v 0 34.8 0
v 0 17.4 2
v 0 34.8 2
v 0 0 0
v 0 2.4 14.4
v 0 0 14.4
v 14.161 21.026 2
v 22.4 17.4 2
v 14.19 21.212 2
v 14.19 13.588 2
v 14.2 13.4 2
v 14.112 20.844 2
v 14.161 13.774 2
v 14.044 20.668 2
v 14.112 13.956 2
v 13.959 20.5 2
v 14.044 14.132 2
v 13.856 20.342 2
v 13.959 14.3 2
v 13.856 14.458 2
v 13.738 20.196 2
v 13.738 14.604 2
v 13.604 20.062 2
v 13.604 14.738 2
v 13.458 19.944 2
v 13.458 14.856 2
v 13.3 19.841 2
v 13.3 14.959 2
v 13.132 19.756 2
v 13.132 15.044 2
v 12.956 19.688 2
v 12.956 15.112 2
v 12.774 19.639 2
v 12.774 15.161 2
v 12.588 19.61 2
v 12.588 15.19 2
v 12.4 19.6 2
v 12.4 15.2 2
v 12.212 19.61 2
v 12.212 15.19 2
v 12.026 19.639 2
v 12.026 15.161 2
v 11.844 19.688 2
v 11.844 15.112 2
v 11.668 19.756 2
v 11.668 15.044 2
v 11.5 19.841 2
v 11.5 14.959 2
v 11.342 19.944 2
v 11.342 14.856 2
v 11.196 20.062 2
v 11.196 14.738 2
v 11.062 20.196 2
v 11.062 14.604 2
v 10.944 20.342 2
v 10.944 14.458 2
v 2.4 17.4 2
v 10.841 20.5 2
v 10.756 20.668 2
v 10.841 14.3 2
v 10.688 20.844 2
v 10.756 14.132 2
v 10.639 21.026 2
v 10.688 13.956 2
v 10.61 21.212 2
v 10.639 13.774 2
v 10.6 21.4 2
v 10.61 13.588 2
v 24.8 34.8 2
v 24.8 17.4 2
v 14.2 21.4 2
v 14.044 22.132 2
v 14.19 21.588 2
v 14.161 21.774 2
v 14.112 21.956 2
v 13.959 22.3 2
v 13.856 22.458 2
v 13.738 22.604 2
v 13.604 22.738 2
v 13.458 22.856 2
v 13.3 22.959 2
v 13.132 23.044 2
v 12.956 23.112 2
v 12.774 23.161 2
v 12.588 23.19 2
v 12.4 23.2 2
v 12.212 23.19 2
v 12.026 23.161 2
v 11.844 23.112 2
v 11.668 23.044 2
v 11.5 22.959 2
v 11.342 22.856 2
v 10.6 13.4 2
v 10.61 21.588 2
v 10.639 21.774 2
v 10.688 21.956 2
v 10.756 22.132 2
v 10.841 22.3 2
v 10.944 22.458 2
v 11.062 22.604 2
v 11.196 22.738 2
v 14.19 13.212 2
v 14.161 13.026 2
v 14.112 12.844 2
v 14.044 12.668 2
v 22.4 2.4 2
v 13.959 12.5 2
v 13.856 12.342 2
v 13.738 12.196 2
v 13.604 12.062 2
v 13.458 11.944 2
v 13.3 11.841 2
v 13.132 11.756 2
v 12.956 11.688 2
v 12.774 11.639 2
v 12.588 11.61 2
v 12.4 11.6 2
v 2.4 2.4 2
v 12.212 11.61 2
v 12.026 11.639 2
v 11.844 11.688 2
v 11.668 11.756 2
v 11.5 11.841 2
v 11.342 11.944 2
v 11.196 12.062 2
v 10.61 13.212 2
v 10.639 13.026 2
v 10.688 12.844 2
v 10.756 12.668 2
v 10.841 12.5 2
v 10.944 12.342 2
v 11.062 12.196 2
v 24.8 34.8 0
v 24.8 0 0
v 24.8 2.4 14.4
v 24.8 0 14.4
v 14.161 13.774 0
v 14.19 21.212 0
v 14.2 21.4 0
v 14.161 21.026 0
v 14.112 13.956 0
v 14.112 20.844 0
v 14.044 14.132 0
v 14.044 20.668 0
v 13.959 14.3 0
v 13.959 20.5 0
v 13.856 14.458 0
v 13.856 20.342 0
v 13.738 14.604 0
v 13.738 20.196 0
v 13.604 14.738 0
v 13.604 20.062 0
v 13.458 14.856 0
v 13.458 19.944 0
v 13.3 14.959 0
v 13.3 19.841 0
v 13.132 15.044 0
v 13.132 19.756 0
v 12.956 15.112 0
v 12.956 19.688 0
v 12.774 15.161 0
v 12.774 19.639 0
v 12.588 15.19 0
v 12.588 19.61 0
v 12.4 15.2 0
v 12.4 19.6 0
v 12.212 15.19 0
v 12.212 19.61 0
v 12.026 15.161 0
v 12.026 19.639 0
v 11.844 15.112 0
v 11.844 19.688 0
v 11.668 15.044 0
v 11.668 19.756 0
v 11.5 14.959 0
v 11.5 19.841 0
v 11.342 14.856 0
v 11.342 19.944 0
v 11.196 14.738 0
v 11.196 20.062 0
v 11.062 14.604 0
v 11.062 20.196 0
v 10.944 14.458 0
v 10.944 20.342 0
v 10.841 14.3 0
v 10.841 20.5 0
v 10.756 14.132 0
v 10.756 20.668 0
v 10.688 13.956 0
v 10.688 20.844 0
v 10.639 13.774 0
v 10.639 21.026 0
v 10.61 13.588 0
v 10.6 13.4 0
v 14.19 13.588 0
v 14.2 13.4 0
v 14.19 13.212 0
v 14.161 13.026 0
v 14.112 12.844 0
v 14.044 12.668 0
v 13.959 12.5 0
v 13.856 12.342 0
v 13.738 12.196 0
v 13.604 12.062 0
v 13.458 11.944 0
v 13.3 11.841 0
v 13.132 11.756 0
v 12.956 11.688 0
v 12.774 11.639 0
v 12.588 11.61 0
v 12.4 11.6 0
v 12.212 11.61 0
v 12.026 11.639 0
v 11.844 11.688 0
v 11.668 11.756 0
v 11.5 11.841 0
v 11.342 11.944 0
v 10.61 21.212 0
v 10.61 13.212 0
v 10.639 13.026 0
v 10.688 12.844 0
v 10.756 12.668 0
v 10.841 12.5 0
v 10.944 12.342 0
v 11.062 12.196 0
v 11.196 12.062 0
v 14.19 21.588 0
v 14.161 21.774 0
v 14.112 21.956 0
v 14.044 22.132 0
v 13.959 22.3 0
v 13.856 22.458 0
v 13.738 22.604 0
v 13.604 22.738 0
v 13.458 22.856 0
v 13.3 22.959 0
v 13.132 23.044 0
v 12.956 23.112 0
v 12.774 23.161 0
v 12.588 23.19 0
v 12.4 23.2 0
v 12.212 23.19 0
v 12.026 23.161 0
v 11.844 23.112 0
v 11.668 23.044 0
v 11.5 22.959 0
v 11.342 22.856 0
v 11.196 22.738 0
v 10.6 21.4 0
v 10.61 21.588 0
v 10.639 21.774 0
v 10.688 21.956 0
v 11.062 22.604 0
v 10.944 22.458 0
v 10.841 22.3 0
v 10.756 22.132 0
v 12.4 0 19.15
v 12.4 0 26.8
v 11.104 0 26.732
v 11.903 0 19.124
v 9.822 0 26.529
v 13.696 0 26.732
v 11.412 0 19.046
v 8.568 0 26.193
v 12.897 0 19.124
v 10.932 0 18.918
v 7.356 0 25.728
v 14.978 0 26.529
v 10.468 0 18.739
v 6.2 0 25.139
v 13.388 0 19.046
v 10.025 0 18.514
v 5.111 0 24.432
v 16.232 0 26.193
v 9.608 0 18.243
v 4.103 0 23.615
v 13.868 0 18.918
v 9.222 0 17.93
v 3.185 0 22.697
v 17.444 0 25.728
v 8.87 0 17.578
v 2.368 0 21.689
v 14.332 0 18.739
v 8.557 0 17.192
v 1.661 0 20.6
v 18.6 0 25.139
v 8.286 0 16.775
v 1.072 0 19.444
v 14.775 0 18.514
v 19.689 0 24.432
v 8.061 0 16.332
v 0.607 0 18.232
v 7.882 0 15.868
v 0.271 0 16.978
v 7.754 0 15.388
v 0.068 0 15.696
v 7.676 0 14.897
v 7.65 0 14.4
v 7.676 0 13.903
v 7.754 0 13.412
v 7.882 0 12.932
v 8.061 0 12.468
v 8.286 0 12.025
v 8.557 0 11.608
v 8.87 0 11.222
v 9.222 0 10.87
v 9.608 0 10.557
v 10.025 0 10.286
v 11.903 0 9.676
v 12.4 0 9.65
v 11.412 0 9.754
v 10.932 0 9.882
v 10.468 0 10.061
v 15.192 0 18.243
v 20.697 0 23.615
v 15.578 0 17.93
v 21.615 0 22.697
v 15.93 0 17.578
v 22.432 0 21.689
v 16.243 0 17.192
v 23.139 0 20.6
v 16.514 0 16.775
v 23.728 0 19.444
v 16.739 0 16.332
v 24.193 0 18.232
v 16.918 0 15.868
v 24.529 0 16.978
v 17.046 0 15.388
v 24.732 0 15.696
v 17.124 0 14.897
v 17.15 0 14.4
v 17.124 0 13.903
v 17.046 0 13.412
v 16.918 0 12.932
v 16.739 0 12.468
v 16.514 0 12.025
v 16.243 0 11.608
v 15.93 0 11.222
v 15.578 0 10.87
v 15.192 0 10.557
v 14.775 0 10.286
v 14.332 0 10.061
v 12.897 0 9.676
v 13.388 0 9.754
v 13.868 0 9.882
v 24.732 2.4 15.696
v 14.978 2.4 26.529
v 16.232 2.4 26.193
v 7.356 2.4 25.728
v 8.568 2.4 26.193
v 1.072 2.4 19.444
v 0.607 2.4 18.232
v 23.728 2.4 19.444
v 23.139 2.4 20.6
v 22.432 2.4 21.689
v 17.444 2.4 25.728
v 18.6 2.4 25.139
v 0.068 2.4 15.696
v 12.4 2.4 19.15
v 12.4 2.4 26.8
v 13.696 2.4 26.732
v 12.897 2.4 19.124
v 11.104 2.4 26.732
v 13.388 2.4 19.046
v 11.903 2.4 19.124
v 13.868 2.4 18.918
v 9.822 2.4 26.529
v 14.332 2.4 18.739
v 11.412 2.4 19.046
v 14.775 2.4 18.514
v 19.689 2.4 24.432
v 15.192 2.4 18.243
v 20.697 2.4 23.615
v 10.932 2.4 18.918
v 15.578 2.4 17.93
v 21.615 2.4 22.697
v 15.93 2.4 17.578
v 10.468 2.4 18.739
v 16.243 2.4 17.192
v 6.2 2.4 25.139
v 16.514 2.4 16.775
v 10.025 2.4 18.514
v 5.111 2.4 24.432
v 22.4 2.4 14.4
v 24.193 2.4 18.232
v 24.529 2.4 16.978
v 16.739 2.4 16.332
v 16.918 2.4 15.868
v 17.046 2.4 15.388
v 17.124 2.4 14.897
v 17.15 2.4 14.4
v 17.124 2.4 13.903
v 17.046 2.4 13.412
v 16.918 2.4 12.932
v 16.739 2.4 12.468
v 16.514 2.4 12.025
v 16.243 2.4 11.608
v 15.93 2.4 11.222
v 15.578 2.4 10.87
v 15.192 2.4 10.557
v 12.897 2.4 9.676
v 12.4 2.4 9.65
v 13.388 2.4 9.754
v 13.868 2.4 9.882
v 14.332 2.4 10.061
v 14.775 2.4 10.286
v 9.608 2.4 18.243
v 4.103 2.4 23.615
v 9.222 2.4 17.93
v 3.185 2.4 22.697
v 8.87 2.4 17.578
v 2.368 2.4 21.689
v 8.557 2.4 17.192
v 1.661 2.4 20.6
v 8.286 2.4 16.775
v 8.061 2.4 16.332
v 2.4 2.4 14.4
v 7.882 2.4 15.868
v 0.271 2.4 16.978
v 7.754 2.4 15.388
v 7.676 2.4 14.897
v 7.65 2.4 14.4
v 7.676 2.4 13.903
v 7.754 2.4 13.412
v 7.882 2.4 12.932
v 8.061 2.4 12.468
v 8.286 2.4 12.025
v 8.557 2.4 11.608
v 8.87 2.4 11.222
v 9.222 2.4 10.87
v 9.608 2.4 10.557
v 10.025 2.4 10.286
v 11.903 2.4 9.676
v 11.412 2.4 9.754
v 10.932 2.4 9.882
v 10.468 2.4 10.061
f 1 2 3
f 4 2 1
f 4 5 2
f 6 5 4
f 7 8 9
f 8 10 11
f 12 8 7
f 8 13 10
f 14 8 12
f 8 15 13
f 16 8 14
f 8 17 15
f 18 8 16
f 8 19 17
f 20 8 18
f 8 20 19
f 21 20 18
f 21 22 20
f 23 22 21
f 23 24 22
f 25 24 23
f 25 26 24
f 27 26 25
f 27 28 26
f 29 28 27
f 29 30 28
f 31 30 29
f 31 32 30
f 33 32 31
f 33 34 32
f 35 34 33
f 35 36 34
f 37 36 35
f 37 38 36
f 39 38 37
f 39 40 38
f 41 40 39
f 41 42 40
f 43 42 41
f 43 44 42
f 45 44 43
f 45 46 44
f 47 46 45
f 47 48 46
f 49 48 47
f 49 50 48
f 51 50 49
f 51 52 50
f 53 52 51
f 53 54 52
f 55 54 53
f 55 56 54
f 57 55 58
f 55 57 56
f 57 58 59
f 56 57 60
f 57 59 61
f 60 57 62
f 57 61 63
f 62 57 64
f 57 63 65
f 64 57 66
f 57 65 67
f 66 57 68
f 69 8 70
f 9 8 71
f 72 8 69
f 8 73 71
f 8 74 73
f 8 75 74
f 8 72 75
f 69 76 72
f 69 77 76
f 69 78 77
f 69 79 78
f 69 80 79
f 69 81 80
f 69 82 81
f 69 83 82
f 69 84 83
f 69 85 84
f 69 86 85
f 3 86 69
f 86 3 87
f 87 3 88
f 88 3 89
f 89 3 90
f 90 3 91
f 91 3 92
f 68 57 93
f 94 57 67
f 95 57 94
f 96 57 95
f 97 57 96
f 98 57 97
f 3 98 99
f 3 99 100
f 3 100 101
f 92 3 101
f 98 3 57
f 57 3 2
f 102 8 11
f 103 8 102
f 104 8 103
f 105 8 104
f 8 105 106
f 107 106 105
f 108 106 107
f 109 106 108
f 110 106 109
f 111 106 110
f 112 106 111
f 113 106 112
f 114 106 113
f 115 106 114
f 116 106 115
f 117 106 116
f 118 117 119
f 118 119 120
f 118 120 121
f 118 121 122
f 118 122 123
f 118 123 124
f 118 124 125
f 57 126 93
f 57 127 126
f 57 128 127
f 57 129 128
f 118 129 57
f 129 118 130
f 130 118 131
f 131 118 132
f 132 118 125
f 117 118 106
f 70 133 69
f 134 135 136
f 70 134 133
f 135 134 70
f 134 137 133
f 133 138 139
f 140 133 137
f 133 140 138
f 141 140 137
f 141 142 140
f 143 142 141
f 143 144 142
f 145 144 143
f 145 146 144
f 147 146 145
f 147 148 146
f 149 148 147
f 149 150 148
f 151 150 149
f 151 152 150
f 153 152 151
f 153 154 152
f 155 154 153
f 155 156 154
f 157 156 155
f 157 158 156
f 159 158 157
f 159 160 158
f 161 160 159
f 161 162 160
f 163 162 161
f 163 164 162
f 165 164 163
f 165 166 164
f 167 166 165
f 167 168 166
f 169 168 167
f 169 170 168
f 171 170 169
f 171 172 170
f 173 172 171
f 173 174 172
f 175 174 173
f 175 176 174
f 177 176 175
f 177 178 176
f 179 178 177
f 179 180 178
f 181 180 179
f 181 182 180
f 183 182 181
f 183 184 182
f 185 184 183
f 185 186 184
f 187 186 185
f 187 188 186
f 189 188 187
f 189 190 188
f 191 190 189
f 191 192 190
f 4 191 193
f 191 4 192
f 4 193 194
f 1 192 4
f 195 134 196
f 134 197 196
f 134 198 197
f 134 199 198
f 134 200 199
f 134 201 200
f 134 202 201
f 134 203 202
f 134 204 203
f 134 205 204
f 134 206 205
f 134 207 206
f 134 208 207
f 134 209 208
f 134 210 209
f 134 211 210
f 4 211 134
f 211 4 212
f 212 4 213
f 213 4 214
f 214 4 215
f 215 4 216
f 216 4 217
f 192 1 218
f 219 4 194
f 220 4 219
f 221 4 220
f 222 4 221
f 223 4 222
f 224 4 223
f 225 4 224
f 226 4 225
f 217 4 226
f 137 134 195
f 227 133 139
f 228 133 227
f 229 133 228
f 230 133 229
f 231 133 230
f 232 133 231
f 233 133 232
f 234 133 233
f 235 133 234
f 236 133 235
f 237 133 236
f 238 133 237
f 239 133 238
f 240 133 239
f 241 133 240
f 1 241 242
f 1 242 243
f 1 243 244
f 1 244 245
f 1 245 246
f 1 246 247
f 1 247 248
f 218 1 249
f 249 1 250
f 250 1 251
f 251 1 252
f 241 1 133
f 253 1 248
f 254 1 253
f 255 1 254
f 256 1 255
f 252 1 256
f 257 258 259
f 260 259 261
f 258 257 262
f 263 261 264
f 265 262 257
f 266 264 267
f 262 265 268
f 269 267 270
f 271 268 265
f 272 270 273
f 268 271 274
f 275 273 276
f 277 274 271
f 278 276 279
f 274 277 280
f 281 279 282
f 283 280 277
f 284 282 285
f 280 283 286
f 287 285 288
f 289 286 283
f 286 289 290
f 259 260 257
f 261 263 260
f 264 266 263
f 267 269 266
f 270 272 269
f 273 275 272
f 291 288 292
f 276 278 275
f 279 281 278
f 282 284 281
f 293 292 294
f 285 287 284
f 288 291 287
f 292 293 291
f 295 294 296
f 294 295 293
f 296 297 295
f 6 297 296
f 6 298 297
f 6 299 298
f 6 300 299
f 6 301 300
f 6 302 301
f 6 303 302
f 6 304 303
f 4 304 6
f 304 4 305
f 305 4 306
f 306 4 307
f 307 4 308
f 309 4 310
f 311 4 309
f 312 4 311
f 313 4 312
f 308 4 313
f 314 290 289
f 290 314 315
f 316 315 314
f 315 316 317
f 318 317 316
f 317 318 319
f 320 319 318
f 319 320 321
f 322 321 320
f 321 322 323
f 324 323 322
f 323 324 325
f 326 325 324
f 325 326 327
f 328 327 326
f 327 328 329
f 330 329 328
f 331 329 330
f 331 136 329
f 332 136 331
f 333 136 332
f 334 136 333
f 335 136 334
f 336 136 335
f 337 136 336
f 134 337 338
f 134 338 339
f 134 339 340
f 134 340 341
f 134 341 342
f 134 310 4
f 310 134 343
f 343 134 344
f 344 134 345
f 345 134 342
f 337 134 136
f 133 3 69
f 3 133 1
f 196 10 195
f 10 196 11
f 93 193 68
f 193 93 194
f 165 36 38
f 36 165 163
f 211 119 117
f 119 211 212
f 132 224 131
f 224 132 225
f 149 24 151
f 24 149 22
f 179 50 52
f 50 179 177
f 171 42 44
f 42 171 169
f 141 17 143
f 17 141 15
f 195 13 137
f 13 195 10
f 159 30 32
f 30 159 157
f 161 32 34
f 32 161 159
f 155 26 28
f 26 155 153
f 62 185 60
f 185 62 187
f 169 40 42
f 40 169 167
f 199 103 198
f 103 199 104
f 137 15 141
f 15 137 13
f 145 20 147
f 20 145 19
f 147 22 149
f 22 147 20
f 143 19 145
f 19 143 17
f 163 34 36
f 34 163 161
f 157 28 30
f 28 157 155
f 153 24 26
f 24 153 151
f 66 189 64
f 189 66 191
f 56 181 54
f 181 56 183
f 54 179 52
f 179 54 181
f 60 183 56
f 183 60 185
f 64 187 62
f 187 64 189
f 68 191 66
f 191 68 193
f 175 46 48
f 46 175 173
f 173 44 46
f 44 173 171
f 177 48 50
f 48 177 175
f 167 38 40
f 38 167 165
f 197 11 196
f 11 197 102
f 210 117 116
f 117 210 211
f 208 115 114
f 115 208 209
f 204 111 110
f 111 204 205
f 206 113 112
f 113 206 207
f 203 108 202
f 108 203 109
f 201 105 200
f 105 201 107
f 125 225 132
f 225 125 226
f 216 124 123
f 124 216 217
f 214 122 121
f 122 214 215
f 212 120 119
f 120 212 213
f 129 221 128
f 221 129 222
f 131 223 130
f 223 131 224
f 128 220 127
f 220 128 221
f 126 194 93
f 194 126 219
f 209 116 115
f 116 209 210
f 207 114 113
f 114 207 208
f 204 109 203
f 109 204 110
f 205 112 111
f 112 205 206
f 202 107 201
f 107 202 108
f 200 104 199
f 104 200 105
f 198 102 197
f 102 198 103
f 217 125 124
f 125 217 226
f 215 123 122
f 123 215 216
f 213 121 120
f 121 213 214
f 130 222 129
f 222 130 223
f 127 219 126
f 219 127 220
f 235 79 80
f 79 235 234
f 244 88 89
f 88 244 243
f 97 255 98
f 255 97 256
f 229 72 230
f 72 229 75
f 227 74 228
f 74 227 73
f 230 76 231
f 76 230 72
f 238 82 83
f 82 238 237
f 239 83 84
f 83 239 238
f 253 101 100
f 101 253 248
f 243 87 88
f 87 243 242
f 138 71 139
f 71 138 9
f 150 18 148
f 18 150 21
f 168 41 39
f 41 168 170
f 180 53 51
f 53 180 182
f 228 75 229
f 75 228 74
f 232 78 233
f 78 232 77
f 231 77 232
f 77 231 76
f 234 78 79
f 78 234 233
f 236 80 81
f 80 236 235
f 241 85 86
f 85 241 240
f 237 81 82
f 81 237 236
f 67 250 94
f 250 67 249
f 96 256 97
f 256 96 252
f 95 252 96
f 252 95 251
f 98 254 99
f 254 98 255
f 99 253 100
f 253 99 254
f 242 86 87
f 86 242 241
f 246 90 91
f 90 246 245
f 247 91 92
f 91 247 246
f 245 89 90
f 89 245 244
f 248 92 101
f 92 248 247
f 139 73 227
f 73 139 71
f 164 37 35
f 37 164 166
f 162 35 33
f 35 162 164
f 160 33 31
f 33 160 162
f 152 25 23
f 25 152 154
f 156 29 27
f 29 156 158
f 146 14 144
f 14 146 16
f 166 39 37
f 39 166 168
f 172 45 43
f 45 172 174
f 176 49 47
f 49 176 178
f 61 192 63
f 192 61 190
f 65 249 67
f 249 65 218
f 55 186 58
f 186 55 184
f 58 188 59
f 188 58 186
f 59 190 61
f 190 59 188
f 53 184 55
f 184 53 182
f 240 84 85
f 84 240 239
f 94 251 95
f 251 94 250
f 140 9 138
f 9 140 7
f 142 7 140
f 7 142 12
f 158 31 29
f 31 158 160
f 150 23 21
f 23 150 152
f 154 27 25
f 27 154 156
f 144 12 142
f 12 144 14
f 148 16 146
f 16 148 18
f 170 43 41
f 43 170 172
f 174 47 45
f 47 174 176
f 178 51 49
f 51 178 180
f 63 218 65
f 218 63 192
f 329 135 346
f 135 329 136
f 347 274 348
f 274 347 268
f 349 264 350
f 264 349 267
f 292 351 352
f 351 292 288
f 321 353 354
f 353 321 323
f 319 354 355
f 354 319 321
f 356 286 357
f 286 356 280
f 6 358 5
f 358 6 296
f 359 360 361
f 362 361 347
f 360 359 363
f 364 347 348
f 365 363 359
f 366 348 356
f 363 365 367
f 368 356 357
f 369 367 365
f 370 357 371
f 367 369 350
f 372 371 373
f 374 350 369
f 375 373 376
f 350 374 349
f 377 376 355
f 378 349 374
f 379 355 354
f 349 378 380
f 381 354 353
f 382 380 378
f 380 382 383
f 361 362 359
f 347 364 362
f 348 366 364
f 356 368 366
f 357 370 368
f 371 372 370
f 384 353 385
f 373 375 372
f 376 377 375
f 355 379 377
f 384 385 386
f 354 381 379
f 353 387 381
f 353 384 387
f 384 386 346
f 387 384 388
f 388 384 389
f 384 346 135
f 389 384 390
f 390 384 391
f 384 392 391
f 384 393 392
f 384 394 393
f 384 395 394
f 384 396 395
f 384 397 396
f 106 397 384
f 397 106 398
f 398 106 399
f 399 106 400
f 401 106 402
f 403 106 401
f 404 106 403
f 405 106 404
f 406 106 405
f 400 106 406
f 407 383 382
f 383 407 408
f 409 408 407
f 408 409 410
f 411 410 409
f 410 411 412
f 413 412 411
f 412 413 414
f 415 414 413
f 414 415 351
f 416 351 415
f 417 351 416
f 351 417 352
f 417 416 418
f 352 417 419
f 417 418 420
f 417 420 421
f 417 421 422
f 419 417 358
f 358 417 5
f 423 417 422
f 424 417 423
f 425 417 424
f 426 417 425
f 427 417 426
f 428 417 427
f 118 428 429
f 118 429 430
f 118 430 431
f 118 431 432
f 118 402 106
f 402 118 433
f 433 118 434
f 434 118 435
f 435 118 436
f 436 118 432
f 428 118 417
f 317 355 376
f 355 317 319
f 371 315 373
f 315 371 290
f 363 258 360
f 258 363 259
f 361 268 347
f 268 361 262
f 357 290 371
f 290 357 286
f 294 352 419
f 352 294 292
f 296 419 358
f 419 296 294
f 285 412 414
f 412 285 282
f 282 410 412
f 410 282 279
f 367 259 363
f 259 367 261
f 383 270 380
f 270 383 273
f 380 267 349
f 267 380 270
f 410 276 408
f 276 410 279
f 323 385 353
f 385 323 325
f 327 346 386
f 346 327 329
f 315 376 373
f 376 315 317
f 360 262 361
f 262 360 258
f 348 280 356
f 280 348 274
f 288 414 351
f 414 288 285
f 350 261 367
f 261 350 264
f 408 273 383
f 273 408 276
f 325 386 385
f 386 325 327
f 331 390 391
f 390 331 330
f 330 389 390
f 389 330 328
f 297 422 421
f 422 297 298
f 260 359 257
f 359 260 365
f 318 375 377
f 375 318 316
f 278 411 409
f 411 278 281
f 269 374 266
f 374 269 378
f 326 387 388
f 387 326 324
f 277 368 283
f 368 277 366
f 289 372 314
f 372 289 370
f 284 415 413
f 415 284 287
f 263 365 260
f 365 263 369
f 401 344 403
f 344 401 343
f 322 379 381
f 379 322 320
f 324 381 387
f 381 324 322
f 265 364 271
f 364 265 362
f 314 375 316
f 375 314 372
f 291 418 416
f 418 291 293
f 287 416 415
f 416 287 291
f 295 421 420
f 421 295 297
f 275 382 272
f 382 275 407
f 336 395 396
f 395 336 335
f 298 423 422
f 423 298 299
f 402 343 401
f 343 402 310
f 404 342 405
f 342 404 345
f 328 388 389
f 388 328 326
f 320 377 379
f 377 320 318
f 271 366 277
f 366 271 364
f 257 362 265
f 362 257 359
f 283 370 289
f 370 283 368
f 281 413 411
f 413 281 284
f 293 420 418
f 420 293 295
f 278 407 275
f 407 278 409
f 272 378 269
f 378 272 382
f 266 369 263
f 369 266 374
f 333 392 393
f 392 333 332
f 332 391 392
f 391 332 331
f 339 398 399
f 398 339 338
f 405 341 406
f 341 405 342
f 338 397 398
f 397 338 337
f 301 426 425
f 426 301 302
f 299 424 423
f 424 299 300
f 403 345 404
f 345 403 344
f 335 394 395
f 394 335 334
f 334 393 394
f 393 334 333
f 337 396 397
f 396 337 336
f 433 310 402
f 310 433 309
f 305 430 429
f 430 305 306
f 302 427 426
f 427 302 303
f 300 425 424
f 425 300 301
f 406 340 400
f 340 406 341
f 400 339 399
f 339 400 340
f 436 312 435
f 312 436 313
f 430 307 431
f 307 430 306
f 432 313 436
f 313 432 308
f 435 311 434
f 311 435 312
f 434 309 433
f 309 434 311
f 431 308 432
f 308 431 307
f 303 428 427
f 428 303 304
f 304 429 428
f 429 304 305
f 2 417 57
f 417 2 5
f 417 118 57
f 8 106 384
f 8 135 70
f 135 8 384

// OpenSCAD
// RealGusi (C) 2021
// https://maniana.net
// Creative Commons - Attribution - Non-Commercial - Share Alike license.

$fn = 60;

$accuracy = 0.1;
$hole_distance = 8;
$screw_hole_r = 3.6 / 2;
$ptfe_hole_r = 9.5 / 2;
$back_thickness = 2;
$wall_thickness = 2.4;
$back_width = 20 + $wall_thickness * 2;
$back_height = 30 + $wall_thickness * 2;

module screw_hole( s_x, s_y) {
    translate( [ s_x, s_y, -$accuracy])
        cylinder( h = $back_thickness + $accuracy * 2, r = $screw_hole_r);
}

module back_plate(){
    difference(){
        cube( [$back_width, $back_height, $back_thickness]);
        screw_hole( $back_width / 2, $back_height / 2 - $hole_distance / 2);
        screw_hole( $back_width / 2, $back_height / 2 + $hole_distance / 2);
    }
}

module top_plate() {
    difference() {
        union() {
            translate( [ $back_width / 2, 
                         $wall_thickness, 
                         $back_width / 2 + $back_thickness])
            rotate( [ 90, 0, 0])
                cylinder( h = $wall_thickness, r = $back_width / 2);
            translate( [ 0, 0, $back_thickness])
                cube( [ $back_width, $wall_thickness, $back_width / 2]);
        }
        translate( [ $back_width / 2, 
                     $wall_thickness + $accuracy, 
                     $back_width / 2 + $back_thickness])
        rotate( [ 90, 0, 0])
            cylinder( h = $wall_thickness + $accuracy * 2, r = $ptfe_hole_r);
    }
}

module side_wall( s_x) {
    translate( [ s_x, $wall_thickness, $back_thickness])
    rotate( [ 90, 0, 90])
    linear_extrude( $wall_thickness)
    polygon( points = [ [0,0], 
                        [ 0,$back_width / 2], 
                        [ $back_height / 2 - $wall_thickness,0]]);
}

back_plate();
top_plate();
side_wall( 0);
side_wall( $back_width -$wall_thickness);
